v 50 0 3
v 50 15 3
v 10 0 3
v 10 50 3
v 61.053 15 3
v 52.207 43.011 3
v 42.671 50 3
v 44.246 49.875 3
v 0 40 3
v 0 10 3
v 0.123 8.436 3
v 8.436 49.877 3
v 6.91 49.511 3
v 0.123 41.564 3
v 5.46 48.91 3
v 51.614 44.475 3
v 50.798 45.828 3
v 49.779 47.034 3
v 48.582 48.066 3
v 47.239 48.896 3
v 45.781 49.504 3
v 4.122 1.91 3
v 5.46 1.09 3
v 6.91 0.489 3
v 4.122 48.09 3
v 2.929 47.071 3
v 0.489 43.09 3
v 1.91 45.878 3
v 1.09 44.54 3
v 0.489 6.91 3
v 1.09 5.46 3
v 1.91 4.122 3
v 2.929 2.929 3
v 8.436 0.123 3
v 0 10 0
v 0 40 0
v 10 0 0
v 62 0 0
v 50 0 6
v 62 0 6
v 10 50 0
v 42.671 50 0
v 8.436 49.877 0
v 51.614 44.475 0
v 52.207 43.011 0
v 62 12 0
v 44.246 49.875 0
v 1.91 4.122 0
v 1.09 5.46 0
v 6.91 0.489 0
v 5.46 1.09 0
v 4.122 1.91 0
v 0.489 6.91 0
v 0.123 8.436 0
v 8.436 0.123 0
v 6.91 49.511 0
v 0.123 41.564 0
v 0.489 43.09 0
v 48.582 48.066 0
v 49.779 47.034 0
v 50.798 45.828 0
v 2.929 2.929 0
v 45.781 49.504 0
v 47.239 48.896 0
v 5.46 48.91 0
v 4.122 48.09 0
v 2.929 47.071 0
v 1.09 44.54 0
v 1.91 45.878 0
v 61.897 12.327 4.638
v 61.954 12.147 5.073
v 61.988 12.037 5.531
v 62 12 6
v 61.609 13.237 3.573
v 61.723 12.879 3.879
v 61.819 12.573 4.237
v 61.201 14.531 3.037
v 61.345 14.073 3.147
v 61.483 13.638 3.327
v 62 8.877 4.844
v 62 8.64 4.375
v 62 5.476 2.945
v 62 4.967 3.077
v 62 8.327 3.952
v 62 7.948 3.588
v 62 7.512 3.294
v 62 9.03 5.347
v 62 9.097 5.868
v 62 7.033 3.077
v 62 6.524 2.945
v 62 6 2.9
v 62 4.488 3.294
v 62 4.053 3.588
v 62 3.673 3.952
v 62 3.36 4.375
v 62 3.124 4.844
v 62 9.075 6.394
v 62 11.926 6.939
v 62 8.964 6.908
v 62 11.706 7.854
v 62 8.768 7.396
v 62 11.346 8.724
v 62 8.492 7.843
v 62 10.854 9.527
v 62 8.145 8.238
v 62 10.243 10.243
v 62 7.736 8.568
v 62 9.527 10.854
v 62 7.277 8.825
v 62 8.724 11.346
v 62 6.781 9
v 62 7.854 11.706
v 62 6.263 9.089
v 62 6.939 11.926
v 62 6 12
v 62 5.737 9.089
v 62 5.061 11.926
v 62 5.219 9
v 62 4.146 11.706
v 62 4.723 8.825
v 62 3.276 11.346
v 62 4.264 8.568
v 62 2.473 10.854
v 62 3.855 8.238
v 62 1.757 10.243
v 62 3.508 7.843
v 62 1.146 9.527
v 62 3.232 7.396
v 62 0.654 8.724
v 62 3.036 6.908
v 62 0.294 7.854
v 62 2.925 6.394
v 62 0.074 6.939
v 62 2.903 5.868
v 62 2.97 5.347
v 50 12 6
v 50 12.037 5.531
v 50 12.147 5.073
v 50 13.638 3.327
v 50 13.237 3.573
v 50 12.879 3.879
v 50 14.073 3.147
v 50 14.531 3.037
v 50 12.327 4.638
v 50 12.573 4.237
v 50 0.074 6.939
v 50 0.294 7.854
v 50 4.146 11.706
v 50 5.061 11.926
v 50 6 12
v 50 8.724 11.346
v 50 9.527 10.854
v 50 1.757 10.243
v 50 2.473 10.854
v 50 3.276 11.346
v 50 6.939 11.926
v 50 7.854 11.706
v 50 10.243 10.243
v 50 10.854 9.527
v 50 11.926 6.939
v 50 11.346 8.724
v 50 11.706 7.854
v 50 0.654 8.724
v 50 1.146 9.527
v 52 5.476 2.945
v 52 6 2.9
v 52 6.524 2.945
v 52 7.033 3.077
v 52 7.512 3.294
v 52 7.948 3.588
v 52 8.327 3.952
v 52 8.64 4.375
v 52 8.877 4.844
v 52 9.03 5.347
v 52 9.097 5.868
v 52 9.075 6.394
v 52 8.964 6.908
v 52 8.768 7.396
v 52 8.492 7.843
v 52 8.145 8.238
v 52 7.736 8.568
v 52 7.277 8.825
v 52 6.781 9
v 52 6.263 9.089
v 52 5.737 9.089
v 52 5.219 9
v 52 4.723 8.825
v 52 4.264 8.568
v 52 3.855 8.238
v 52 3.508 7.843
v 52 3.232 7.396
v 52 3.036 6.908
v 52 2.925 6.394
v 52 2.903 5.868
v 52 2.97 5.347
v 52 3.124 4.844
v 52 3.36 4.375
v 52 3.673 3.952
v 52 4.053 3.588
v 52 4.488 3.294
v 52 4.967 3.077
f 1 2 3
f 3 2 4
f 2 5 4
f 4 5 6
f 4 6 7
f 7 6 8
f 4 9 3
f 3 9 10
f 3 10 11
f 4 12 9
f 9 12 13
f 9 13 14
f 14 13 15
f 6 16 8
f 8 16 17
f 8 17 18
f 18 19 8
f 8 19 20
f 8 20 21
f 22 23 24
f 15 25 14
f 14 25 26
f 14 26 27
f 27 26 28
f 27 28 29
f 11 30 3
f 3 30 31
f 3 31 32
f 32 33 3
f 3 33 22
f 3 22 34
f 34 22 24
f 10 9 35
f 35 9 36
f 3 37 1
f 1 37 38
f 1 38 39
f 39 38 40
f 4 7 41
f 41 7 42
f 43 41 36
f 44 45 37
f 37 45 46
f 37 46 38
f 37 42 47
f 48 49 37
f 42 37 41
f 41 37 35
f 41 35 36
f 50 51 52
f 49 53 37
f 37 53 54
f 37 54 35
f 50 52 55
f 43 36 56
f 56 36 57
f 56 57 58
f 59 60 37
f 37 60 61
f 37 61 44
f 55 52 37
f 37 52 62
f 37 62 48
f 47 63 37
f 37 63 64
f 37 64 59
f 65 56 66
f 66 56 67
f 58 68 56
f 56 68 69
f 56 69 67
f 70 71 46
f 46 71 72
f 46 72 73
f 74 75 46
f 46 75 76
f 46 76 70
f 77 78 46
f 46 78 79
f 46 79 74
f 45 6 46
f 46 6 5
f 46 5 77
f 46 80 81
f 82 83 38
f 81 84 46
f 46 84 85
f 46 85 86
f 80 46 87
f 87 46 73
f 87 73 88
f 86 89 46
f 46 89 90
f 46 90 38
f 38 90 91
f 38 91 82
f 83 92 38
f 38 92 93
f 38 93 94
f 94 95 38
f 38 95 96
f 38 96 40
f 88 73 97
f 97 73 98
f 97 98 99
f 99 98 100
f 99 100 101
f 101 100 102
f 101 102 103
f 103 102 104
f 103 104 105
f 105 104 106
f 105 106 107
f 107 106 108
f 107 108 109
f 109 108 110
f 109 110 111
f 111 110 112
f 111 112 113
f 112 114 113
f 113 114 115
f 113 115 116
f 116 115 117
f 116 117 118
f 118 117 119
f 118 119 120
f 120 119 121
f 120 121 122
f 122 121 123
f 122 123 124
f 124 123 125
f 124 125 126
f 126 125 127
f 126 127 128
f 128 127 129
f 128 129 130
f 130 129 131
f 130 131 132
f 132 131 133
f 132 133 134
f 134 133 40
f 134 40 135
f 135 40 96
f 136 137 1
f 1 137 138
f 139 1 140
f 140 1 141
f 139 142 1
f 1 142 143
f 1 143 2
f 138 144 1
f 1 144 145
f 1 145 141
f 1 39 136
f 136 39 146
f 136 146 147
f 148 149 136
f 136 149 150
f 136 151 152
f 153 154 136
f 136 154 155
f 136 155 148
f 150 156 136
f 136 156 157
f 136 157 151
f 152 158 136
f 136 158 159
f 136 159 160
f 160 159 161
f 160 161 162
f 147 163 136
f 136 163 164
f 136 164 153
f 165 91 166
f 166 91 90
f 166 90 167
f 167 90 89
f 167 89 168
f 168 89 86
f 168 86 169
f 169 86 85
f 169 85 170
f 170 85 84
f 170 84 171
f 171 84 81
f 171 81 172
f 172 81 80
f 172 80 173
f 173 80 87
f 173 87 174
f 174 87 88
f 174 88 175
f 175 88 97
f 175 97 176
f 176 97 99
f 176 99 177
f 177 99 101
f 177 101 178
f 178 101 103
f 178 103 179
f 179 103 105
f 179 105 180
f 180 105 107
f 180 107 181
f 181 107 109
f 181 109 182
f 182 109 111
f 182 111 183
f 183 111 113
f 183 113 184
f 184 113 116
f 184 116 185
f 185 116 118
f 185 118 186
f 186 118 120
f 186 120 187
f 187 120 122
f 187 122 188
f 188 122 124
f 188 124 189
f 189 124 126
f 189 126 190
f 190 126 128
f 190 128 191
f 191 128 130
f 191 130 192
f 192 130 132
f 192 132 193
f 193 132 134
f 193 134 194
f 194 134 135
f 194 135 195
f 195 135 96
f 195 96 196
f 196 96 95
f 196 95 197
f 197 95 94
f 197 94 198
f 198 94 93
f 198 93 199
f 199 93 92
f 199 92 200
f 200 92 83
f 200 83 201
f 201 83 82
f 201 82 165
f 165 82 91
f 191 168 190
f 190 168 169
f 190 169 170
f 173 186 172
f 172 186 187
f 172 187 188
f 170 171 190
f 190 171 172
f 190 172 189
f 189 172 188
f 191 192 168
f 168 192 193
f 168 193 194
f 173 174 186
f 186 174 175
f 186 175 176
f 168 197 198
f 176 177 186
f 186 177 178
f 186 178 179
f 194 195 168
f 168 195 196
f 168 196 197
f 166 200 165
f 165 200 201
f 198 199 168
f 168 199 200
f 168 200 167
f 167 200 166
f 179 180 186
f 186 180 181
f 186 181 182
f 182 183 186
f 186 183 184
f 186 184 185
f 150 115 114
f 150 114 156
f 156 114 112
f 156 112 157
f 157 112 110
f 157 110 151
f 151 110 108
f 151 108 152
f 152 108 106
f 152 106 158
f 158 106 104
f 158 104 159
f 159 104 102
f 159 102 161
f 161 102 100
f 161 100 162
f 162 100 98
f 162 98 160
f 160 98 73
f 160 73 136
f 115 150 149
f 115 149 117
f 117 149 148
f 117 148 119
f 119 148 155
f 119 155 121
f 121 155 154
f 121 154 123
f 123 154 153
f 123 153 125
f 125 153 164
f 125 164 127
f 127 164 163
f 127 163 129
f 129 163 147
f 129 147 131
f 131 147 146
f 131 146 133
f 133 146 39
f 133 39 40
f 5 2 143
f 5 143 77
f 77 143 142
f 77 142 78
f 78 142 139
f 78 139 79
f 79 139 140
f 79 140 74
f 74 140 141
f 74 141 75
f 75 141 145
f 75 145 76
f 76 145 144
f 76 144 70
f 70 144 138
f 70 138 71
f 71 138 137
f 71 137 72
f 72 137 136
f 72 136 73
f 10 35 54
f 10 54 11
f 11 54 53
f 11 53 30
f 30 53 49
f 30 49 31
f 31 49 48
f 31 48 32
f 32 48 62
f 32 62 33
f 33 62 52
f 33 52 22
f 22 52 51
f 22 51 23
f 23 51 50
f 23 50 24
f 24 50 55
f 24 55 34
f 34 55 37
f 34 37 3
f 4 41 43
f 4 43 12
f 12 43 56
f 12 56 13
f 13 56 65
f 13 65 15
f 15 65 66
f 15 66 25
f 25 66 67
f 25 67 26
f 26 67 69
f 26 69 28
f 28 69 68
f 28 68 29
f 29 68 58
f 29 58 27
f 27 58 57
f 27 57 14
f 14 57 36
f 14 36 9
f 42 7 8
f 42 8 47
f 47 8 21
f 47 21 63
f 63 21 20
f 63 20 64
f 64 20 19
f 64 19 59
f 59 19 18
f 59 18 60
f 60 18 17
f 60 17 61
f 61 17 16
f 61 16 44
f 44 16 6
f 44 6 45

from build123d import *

# Parameters (mm, degrees)
ESQUISSE1_W             = 50
ESQUISSE1_H             = 50
BOSS_EXTRU_1_DEPTH      = 3
BOSS_EXTRU_2_DEPTH      = 3
ESQUISSE3_W             = 12
ESQUISSE3_H             = 12
BOSS_EXTRU_3_DEPTH      = 9
ESQUISSE4_R             = 3.1
ENL_V_MAT_EXTRU_1_DEPTH = 10
CONG_1_R                = 6
CONG_2_R                = 3
CONG_3_R                = 10


with BuildPart() as part:
    # Esquisse1 → Boss.-Extru.1 (new body)
    with BuildSketch(Plane.XY):
        with Locations((25, 25)):
            Rectangle(ESQUISSE1_W, ESQUISSE1_H)
    extrude(amount=BOSS_EXTRU_1_DEPTH)

    # Esquisse2 → Boss.-Extru.2 (add)
    with BuildSketch(Plane.XY.offset(3)):
        Polygon((50, 0), (62, 0), (62, 12), (50, 50), align=None)
    extrude(amount=-BOSS_EXTRU_2_DEPTH)

    # Esquisse3 → Boss.-Extru.3 (add)
    with BuildSketch(Plane.XY.offset(3)):
        with Locations((56, 6)):
            Rectangle(ESQUISSE3_W, ESQUISSE3_H)
    extrude(amount=BOSS_EXTRU_3_DEPTH)

    # Esquisse4 → Enlèv. mat.-Extru.1 (cut)
    with BuildSketch(Plane(origin=(62, 0, 0), x_dir=(0, 0, -1), z_dir=(1, 0, 0))):
        with Locations((-6, 6)):
            Circle(ESQUISSE4_R)
    extrude(amount=-ENL_V_MAT_EXTRU_1_DEPTH, mode=Mode.SUBTRACT)

    # Congé1
    cong_1_edges = [part.edges().sort_by_distance(p)[0] for p in [
        (56, 0, 12),
        (56, 12, 12),
    ]]
    fillet(cong_1_edges, radius=CONG_1_R - 0.0001)  # a hair under: the kernel refuses the full size

    # Congé2
    cong_2_edges = [part.edges().sort_by_distance(p)[0] for p in [
        (56, 12, 3),
    ]]
    fillet(cong_2_edges, radius=CONG_2_R)

    # Congé3
    cong_3_edges = [part.edges().sort_by_distance(p)[0] for p in [
        (0, 0, 1.5),
        (0, 50, 1.5),
        (50, 50, 1.5),
    ]]
    fillet(cong_3_edges, radius=CONG_3_R)


solid = part.part
